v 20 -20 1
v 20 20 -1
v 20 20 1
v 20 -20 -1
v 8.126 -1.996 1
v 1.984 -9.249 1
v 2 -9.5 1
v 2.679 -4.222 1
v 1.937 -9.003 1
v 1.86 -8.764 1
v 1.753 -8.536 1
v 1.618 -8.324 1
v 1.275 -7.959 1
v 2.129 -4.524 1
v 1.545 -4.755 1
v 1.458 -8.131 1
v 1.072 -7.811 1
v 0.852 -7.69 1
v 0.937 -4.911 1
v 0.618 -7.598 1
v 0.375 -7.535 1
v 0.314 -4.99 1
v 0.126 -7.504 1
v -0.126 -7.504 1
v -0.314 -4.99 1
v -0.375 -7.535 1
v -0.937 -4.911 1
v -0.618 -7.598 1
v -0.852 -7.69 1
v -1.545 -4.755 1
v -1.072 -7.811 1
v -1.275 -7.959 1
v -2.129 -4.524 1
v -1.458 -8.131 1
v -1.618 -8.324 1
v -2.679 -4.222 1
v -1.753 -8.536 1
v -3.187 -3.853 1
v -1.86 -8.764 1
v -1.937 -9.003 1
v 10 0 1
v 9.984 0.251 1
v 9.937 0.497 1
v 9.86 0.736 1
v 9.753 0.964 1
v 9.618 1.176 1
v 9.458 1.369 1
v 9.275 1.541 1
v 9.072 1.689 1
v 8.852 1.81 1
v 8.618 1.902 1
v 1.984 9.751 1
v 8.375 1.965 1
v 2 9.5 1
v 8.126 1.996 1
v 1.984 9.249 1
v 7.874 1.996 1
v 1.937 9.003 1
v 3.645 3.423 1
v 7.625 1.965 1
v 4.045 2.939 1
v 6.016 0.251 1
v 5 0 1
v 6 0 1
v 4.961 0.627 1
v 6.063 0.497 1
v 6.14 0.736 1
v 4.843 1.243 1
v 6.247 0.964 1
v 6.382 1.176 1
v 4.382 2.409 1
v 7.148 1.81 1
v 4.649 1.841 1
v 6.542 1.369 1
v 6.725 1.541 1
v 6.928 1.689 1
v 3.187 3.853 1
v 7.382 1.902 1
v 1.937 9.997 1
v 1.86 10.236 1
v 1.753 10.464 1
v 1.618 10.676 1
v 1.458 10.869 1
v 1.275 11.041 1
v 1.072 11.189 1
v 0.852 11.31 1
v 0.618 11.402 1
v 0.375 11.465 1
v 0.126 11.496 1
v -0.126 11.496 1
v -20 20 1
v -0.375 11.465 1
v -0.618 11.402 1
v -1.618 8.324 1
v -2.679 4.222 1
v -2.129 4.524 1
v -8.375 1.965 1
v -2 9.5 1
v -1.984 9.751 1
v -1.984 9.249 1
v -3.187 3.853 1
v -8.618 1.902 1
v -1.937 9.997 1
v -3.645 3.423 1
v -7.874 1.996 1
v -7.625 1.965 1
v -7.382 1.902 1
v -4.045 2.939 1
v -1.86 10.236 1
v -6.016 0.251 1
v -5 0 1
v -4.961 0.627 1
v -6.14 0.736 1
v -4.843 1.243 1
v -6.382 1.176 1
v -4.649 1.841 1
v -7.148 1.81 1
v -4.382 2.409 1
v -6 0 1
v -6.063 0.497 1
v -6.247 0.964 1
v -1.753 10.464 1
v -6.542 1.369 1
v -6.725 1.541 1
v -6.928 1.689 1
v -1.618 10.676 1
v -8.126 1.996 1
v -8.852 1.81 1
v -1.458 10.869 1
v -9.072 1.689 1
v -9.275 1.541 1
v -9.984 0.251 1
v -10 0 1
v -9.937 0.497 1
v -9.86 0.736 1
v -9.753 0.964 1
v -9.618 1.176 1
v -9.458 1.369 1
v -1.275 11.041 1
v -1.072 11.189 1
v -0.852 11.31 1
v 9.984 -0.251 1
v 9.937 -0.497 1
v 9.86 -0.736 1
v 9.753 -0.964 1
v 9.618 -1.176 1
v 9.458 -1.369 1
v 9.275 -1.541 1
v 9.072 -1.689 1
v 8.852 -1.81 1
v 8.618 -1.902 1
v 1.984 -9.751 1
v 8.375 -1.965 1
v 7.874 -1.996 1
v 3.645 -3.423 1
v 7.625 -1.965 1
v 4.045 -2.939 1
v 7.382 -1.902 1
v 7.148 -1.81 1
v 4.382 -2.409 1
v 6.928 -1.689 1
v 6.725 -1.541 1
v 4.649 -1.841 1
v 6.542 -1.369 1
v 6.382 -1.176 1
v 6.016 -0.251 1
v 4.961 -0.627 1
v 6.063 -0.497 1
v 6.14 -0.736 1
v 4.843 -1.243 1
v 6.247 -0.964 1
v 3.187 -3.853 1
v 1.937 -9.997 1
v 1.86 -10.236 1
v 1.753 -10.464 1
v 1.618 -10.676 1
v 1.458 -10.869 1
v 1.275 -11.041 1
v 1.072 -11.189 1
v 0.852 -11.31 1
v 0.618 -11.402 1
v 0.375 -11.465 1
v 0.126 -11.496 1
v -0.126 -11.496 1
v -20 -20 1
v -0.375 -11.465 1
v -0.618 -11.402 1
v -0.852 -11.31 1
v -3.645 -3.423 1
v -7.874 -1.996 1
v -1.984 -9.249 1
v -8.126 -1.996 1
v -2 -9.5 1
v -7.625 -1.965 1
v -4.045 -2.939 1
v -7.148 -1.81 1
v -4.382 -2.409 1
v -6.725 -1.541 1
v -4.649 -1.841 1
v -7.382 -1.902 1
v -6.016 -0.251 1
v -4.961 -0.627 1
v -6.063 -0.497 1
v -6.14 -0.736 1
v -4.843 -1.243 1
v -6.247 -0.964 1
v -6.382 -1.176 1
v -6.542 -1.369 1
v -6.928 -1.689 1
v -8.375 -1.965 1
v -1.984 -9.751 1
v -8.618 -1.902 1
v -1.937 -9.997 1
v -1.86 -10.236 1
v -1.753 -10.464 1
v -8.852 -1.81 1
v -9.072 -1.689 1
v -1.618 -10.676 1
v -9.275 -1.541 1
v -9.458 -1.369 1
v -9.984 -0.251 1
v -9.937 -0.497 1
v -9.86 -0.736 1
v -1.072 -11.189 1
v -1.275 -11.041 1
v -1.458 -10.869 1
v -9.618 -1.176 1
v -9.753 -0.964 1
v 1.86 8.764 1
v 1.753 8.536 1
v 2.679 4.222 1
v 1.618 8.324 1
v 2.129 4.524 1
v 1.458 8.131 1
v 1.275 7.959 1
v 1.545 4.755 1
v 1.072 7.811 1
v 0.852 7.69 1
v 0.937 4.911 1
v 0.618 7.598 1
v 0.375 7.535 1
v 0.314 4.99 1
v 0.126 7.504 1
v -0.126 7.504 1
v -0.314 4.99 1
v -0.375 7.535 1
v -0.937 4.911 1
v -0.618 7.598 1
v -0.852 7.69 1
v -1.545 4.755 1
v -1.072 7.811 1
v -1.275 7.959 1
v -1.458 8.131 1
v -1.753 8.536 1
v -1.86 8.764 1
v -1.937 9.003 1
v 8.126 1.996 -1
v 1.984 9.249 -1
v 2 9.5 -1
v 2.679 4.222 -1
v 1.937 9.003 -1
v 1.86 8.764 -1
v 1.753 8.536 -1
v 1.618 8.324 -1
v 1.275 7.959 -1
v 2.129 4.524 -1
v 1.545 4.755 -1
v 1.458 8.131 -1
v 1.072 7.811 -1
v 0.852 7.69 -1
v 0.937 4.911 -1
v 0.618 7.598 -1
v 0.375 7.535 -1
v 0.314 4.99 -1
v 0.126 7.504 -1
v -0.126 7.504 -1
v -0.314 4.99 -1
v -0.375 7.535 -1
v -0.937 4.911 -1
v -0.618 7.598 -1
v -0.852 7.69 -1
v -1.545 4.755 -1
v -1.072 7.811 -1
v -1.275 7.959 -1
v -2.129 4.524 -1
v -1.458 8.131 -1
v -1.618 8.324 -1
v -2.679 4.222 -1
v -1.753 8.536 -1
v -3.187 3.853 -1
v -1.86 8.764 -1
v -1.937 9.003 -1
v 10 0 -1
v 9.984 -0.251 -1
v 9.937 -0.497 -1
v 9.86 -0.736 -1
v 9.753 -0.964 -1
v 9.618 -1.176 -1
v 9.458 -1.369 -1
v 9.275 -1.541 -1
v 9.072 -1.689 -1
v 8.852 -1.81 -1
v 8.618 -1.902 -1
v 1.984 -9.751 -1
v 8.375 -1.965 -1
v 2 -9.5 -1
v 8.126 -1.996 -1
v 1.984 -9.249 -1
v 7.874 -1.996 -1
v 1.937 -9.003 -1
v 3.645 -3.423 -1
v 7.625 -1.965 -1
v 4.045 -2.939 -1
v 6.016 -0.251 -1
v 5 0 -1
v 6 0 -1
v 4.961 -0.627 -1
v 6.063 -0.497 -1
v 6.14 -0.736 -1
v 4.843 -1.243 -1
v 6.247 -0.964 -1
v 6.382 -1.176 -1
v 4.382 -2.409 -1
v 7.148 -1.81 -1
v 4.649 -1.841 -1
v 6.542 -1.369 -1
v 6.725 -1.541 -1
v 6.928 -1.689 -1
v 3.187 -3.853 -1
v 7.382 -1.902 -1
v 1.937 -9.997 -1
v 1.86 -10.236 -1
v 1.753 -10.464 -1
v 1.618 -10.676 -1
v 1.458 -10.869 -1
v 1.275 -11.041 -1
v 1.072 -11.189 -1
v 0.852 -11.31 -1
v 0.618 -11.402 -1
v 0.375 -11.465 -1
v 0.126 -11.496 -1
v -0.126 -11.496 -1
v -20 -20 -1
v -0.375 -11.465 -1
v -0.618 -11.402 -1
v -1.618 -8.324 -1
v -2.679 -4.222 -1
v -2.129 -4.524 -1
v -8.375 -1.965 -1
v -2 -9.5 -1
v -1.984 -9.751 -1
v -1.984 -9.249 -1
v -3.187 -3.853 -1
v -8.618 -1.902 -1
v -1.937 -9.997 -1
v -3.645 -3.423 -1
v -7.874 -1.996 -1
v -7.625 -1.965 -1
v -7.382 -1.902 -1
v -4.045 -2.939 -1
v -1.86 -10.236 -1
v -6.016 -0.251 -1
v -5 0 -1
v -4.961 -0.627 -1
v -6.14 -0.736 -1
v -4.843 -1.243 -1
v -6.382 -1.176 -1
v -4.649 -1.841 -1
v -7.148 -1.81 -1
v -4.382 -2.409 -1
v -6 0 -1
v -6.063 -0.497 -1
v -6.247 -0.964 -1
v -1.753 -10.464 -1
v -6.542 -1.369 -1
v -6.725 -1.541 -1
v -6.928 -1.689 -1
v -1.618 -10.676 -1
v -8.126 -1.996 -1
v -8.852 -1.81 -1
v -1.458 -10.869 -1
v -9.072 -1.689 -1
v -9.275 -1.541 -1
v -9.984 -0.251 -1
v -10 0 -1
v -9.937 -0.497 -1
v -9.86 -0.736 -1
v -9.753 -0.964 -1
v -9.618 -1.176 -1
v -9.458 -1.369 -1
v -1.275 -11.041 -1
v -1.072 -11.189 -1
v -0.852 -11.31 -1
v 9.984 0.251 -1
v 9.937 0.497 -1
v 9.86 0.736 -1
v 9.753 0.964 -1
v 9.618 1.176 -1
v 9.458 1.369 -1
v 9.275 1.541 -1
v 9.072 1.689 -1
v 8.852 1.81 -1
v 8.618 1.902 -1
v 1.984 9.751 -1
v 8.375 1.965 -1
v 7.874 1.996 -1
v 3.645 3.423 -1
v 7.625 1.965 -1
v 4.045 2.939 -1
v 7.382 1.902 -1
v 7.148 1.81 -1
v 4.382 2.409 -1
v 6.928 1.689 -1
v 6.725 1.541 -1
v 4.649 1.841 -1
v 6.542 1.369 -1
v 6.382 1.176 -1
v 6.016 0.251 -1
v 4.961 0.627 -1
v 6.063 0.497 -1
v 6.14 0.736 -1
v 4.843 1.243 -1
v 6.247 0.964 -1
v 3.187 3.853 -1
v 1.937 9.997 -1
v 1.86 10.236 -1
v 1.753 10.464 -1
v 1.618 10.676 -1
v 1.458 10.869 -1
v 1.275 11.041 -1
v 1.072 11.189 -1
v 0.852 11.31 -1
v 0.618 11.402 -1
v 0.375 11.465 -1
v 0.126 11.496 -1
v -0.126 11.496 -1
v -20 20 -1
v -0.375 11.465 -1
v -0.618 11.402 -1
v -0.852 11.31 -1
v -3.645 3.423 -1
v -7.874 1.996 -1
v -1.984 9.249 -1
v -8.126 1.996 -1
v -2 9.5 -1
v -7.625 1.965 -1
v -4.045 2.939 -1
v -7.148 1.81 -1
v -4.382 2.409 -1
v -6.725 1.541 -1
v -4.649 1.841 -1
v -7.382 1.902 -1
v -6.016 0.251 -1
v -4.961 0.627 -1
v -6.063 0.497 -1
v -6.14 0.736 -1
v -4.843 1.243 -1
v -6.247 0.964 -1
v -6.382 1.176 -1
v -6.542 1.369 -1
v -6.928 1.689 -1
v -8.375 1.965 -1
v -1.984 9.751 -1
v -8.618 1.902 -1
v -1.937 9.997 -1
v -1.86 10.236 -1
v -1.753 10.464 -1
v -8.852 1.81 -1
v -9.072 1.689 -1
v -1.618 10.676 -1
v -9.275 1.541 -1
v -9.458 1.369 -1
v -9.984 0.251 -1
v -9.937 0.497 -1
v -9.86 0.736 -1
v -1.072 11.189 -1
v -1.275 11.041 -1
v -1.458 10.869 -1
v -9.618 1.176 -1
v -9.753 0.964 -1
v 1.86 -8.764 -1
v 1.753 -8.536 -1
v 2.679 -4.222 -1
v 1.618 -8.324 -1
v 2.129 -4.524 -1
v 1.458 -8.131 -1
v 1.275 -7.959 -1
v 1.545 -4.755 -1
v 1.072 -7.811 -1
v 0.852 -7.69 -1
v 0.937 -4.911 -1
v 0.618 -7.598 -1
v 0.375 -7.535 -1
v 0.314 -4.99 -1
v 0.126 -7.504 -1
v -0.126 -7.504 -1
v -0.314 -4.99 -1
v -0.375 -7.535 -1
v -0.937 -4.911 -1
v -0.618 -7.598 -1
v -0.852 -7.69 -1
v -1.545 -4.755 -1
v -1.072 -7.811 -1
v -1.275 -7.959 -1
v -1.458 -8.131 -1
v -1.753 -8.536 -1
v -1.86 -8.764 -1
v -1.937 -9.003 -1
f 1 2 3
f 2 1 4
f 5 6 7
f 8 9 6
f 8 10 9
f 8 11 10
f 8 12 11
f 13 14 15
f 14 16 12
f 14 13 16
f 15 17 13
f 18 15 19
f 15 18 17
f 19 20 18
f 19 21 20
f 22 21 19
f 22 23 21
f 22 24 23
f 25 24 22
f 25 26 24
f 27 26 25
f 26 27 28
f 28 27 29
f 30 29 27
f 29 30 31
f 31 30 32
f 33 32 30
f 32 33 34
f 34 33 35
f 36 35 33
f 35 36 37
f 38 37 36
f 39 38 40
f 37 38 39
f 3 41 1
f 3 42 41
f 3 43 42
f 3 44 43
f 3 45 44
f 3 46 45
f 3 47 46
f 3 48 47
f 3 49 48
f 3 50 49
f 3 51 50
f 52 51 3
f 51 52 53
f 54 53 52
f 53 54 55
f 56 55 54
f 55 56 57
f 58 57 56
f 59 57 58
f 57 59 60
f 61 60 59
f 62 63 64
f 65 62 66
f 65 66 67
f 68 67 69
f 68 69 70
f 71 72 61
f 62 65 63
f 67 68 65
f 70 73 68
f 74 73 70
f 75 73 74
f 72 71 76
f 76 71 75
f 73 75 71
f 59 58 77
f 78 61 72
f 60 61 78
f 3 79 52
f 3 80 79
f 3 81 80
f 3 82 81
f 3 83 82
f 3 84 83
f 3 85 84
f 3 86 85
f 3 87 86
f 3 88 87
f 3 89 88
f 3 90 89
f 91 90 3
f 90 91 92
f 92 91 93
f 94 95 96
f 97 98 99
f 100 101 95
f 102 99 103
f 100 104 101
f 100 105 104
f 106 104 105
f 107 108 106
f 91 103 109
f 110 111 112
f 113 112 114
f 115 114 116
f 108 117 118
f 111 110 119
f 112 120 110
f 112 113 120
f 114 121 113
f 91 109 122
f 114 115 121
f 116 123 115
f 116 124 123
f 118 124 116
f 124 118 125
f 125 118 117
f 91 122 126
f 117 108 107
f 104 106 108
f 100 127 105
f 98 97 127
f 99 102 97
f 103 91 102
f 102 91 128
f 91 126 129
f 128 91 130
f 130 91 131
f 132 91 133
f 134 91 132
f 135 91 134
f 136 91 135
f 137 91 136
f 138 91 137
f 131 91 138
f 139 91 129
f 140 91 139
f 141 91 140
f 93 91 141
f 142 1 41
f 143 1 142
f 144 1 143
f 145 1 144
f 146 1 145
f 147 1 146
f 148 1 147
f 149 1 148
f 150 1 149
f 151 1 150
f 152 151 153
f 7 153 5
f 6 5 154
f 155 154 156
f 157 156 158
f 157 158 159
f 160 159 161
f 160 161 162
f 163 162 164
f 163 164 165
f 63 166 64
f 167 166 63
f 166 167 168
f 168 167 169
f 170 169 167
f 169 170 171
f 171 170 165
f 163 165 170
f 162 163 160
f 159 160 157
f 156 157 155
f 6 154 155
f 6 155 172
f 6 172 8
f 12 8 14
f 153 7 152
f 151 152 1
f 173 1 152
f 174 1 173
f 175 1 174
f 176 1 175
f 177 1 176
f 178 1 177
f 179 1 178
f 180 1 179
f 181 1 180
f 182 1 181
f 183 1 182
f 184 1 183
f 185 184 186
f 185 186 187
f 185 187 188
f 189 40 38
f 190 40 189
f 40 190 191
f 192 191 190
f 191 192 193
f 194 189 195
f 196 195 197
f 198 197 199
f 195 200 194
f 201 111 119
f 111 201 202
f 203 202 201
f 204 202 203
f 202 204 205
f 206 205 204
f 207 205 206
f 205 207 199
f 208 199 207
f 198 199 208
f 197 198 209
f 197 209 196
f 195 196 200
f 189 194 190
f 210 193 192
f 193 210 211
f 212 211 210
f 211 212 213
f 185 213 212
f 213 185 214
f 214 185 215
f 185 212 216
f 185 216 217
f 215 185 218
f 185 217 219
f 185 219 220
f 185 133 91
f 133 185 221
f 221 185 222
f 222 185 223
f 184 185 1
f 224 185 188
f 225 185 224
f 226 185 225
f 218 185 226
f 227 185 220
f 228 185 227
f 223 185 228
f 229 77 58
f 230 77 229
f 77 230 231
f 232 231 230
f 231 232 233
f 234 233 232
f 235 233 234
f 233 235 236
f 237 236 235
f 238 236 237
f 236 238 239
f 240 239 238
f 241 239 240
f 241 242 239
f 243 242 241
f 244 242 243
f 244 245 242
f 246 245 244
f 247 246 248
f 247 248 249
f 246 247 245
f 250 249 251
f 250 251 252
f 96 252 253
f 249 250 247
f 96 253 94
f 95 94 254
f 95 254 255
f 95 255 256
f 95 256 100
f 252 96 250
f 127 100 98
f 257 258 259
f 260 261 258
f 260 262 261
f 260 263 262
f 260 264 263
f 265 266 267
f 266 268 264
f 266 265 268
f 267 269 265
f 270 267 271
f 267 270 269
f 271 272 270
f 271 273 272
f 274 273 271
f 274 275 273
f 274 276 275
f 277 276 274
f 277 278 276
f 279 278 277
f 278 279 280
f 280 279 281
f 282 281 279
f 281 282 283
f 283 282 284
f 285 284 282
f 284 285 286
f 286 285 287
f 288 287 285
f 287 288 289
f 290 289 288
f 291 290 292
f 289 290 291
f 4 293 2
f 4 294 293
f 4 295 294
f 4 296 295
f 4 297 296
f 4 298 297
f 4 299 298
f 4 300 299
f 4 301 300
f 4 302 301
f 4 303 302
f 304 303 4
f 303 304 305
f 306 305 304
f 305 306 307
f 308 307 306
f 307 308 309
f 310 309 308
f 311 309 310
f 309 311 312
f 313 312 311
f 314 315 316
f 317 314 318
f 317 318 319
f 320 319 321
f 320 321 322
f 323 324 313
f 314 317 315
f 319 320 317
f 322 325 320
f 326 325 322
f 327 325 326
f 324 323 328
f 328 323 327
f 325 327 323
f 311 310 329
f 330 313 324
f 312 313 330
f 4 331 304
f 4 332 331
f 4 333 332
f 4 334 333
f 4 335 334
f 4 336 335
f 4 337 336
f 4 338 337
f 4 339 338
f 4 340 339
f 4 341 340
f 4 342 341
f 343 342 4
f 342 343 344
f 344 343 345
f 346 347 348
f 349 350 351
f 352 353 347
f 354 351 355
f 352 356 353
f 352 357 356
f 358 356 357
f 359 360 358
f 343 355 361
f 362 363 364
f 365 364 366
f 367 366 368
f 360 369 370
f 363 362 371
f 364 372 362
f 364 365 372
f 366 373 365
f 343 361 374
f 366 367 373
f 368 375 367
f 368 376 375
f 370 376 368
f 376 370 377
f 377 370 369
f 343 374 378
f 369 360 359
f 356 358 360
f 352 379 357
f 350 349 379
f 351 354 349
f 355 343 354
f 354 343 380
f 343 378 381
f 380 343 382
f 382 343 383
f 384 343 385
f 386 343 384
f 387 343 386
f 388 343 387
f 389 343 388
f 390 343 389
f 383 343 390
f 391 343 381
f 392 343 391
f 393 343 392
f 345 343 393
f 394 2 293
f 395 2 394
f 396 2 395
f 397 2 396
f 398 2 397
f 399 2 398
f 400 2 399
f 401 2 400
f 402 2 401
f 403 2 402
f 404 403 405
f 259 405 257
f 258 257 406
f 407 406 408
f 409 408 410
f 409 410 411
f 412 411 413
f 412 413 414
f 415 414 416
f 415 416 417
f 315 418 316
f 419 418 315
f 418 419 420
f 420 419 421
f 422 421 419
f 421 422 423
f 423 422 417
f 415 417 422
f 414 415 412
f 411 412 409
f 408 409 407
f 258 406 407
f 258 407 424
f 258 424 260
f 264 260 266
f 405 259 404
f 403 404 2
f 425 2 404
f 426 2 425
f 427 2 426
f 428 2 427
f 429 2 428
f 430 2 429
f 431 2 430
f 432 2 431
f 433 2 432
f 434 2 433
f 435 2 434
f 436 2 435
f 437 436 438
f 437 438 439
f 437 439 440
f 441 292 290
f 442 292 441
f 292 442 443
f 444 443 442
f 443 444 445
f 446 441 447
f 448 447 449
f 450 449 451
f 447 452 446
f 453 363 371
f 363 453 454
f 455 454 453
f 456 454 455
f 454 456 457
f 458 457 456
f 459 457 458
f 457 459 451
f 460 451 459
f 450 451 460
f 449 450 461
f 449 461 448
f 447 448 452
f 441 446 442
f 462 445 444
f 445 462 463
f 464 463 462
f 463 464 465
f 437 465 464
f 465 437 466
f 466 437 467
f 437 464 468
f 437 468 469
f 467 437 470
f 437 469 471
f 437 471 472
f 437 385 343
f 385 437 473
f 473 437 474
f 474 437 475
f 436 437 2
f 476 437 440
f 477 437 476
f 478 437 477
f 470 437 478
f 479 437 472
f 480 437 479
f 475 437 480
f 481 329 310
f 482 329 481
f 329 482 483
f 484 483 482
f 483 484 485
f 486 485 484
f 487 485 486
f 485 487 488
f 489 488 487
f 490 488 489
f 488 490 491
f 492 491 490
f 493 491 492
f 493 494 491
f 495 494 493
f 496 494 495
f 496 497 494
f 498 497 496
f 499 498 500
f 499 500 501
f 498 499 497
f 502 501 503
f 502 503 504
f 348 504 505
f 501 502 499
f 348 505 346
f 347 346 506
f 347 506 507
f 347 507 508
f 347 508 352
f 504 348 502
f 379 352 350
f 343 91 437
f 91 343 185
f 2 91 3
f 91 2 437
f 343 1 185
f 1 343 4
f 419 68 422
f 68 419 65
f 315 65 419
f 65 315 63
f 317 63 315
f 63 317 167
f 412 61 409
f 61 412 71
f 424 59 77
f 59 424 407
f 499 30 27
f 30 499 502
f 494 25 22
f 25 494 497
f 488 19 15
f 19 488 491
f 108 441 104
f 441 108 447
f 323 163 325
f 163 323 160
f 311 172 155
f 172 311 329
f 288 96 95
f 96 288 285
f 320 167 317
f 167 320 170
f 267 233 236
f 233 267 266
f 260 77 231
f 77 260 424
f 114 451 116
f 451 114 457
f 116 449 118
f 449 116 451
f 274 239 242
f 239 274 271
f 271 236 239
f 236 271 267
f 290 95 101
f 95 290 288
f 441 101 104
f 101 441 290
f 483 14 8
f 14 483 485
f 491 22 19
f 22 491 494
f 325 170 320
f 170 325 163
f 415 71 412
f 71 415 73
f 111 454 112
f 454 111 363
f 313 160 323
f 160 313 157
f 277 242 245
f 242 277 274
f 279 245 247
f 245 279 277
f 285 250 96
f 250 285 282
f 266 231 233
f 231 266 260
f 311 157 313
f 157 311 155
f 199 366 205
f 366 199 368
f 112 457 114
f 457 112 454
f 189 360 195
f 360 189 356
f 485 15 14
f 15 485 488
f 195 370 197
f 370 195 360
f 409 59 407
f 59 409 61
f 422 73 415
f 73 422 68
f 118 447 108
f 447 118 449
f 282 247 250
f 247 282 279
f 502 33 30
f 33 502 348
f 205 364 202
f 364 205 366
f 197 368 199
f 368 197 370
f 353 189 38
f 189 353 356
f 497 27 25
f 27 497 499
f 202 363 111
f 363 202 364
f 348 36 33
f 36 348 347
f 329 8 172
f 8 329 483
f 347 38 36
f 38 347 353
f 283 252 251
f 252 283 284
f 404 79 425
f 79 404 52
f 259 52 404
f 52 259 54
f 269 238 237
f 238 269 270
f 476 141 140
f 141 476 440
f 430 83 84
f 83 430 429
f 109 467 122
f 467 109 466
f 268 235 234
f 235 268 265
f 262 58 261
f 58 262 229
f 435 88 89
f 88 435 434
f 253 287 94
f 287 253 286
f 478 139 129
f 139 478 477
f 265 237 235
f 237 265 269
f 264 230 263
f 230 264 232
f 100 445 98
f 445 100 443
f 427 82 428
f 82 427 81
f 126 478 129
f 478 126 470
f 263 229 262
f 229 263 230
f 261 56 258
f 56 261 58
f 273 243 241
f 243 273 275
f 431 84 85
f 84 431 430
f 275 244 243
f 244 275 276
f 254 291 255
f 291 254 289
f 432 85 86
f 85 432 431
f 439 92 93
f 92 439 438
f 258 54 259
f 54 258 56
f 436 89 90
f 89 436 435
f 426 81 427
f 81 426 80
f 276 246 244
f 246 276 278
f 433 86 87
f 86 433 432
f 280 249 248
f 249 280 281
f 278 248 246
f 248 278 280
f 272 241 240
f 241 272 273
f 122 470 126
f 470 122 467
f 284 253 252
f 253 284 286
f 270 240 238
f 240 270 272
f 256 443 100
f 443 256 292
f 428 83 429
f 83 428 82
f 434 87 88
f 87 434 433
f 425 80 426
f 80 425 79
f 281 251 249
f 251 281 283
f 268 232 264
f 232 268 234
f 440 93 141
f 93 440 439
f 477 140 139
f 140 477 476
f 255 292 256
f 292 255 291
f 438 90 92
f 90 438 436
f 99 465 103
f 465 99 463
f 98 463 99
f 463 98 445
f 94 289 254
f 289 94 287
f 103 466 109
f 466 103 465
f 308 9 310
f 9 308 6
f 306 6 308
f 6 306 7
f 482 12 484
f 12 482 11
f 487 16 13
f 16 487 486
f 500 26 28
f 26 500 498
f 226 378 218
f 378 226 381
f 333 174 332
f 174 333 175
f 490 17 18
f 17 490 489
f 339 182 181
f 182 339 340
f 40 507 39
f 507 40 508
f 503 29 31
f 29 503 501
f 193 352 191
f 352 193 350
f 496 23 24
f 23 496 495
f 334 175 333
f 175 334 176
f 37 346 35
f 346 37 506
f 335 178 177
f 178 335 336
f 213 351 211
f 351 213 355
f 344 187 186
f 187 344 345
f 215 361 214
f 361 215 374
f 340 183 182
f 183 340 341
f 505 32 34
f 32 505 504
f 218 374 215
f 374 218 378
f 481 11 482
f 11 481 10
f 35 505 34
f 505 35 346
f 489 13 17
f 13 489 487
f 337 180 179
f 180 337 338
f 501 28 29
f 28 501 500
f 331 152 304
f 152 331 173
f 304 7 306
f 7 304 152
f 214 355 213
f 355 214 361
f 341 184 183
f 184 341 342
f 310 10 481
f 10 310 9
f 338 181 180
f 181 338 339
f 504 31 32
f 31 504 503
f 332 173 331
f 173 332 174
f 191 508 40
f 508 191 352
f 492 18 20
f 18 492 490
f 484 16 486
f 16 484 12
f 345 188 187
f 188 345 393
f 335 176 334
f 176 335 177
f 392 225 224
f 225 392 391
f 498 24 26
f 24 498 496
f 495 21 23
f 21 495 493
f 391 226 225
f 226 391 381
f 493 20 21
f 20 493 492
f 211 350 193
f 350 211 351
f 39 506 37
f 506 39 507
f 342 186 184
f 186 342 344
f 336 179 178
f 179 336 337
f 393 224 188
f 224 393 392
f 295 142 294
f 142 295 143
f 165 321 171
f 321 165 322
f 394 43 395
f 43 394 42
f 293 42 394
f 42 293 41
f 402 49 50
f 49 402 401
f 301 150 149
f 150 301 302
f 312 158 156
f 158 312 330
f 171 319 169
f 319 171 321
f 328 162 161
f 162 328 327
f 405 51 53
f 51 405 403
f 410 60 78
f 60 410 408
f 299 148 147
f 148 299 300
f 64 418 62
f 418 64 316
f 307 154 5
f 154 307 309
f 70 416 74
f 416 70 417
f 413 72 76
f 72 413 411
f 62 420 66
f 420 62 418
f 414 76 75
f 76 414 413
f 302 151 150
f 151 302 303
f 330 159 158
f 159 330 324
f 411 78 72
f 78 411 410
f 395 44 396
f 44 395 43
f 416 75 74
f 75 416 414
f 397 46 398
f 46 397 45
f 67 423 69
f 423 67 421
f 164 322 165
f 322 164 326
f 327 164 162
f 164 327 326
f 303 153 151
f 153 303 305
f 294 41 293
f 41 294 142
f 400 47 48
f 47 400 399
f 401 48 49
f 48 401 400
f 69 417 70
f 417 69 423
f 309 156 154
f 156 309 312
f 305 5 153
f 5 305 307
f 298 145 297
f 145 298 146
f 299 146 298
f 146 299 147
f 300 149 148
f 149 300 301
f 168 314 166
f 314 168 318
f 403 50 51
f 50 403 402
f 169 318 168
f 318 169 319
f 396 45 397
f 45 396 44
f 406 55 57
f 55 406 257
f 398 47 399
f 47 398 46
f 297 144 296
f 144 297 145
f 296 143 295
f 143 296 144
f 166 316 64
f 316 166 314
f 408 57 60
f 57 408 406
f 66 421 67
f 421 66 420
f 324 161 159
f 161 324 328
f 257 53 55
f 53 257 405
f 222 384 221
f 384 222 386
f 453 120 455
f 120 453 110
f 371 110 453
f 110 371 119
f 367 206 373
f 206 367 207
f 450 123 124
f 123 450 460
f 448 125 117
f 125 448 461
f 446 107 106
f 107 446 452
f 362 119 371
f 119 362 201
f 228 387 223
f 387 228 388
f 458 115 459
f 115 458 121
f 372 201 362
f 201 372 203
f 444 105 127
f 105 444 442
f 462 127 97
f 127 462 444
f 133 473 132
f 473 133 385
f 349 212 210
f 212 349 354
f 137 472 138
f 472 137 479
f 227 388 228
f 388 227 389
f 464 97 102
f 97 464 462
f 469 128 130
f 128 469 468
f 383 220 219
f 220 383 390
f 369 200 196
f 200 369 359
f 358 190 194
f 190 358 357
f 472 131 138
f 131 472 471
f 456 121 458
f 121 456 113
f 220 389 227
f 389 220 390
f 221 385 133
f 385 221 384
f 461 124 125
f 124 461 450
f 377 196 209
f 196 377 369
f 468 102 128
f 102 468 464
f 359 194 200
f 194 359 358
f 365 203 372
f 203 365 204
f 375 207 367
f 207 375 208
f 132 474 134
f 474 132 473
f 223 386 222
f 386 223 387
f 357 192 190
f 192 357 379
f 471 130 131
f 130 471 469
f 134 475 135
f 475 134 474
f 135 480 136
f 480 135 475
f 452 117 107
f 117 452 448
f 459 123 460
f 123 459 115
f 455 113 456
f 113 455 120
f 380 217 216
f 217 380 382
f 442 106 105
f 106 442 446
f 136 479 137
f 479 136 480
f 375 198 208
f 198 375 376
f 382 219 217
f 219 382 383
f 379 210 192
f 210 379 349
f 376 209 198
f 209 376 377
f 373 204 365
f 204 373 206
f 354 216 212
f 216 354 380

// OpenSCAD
// --- Motor Mount Variables ---
// Copied from your rc_tail_assembly_v3.scad file
motor_shaft_hole_dia = 10;
motor_mount_hole_dia = 4;
hole_pattern_x = 16; // The 16mm dimension
hole_pattern_y = 19; // The 19mm dimension

// --- Test Plate Variables ---
plate_width = 40;  // Total width of the test plate
plate_height = 40; // Total height of the test plate
plate_thickness = 2;   // Thickness of the test plate

$fn = 50; // For smooth holes

// --- Create the Test Plate ---
difference() {
    // 1. The main solid plate
    cube([plate_width, plate_height, plate_thickness], center = true);
    
    // 2. The cutouts
    
    // Center shaft hole
    translate([0, 0, 0])
    cylinder(h = plate_thickness + 2, d = motor_shaft_hole_dia, center = true);
    
    // --- 16x19mm "+" (plus) pattern ---
    
    // Hole 1 (Top, +Y)
    translate([ 0, hole_pattern_y / 2, 0 ])
    cylinder(h = plate_thickness + 2, d = motor_mount_hole_dia, center = true);
    
    // Hole 2 (Bottom, -Y)
    translate([ 0, -hole_pattern_y / 2, 0 ])
    cylinder(h = plate_thickness + 2, d = motor_mount_hole_dia, center = true);
    
    // Hole 3 (Right, +X)
    translate([ hole_pattern_x / 2, 0, 0 ])
    cylinder(h = plate_thickness + 2, d = motor_mount_hole_dia, center = true);
    
    // Hole 4 (Left, -X)
    translate([ -hole_pattern_x / 2, 0, 0 ])
    cylinder(h = plate_thickness + 2, d = motor_mount_hole_dia, center = true);
}
